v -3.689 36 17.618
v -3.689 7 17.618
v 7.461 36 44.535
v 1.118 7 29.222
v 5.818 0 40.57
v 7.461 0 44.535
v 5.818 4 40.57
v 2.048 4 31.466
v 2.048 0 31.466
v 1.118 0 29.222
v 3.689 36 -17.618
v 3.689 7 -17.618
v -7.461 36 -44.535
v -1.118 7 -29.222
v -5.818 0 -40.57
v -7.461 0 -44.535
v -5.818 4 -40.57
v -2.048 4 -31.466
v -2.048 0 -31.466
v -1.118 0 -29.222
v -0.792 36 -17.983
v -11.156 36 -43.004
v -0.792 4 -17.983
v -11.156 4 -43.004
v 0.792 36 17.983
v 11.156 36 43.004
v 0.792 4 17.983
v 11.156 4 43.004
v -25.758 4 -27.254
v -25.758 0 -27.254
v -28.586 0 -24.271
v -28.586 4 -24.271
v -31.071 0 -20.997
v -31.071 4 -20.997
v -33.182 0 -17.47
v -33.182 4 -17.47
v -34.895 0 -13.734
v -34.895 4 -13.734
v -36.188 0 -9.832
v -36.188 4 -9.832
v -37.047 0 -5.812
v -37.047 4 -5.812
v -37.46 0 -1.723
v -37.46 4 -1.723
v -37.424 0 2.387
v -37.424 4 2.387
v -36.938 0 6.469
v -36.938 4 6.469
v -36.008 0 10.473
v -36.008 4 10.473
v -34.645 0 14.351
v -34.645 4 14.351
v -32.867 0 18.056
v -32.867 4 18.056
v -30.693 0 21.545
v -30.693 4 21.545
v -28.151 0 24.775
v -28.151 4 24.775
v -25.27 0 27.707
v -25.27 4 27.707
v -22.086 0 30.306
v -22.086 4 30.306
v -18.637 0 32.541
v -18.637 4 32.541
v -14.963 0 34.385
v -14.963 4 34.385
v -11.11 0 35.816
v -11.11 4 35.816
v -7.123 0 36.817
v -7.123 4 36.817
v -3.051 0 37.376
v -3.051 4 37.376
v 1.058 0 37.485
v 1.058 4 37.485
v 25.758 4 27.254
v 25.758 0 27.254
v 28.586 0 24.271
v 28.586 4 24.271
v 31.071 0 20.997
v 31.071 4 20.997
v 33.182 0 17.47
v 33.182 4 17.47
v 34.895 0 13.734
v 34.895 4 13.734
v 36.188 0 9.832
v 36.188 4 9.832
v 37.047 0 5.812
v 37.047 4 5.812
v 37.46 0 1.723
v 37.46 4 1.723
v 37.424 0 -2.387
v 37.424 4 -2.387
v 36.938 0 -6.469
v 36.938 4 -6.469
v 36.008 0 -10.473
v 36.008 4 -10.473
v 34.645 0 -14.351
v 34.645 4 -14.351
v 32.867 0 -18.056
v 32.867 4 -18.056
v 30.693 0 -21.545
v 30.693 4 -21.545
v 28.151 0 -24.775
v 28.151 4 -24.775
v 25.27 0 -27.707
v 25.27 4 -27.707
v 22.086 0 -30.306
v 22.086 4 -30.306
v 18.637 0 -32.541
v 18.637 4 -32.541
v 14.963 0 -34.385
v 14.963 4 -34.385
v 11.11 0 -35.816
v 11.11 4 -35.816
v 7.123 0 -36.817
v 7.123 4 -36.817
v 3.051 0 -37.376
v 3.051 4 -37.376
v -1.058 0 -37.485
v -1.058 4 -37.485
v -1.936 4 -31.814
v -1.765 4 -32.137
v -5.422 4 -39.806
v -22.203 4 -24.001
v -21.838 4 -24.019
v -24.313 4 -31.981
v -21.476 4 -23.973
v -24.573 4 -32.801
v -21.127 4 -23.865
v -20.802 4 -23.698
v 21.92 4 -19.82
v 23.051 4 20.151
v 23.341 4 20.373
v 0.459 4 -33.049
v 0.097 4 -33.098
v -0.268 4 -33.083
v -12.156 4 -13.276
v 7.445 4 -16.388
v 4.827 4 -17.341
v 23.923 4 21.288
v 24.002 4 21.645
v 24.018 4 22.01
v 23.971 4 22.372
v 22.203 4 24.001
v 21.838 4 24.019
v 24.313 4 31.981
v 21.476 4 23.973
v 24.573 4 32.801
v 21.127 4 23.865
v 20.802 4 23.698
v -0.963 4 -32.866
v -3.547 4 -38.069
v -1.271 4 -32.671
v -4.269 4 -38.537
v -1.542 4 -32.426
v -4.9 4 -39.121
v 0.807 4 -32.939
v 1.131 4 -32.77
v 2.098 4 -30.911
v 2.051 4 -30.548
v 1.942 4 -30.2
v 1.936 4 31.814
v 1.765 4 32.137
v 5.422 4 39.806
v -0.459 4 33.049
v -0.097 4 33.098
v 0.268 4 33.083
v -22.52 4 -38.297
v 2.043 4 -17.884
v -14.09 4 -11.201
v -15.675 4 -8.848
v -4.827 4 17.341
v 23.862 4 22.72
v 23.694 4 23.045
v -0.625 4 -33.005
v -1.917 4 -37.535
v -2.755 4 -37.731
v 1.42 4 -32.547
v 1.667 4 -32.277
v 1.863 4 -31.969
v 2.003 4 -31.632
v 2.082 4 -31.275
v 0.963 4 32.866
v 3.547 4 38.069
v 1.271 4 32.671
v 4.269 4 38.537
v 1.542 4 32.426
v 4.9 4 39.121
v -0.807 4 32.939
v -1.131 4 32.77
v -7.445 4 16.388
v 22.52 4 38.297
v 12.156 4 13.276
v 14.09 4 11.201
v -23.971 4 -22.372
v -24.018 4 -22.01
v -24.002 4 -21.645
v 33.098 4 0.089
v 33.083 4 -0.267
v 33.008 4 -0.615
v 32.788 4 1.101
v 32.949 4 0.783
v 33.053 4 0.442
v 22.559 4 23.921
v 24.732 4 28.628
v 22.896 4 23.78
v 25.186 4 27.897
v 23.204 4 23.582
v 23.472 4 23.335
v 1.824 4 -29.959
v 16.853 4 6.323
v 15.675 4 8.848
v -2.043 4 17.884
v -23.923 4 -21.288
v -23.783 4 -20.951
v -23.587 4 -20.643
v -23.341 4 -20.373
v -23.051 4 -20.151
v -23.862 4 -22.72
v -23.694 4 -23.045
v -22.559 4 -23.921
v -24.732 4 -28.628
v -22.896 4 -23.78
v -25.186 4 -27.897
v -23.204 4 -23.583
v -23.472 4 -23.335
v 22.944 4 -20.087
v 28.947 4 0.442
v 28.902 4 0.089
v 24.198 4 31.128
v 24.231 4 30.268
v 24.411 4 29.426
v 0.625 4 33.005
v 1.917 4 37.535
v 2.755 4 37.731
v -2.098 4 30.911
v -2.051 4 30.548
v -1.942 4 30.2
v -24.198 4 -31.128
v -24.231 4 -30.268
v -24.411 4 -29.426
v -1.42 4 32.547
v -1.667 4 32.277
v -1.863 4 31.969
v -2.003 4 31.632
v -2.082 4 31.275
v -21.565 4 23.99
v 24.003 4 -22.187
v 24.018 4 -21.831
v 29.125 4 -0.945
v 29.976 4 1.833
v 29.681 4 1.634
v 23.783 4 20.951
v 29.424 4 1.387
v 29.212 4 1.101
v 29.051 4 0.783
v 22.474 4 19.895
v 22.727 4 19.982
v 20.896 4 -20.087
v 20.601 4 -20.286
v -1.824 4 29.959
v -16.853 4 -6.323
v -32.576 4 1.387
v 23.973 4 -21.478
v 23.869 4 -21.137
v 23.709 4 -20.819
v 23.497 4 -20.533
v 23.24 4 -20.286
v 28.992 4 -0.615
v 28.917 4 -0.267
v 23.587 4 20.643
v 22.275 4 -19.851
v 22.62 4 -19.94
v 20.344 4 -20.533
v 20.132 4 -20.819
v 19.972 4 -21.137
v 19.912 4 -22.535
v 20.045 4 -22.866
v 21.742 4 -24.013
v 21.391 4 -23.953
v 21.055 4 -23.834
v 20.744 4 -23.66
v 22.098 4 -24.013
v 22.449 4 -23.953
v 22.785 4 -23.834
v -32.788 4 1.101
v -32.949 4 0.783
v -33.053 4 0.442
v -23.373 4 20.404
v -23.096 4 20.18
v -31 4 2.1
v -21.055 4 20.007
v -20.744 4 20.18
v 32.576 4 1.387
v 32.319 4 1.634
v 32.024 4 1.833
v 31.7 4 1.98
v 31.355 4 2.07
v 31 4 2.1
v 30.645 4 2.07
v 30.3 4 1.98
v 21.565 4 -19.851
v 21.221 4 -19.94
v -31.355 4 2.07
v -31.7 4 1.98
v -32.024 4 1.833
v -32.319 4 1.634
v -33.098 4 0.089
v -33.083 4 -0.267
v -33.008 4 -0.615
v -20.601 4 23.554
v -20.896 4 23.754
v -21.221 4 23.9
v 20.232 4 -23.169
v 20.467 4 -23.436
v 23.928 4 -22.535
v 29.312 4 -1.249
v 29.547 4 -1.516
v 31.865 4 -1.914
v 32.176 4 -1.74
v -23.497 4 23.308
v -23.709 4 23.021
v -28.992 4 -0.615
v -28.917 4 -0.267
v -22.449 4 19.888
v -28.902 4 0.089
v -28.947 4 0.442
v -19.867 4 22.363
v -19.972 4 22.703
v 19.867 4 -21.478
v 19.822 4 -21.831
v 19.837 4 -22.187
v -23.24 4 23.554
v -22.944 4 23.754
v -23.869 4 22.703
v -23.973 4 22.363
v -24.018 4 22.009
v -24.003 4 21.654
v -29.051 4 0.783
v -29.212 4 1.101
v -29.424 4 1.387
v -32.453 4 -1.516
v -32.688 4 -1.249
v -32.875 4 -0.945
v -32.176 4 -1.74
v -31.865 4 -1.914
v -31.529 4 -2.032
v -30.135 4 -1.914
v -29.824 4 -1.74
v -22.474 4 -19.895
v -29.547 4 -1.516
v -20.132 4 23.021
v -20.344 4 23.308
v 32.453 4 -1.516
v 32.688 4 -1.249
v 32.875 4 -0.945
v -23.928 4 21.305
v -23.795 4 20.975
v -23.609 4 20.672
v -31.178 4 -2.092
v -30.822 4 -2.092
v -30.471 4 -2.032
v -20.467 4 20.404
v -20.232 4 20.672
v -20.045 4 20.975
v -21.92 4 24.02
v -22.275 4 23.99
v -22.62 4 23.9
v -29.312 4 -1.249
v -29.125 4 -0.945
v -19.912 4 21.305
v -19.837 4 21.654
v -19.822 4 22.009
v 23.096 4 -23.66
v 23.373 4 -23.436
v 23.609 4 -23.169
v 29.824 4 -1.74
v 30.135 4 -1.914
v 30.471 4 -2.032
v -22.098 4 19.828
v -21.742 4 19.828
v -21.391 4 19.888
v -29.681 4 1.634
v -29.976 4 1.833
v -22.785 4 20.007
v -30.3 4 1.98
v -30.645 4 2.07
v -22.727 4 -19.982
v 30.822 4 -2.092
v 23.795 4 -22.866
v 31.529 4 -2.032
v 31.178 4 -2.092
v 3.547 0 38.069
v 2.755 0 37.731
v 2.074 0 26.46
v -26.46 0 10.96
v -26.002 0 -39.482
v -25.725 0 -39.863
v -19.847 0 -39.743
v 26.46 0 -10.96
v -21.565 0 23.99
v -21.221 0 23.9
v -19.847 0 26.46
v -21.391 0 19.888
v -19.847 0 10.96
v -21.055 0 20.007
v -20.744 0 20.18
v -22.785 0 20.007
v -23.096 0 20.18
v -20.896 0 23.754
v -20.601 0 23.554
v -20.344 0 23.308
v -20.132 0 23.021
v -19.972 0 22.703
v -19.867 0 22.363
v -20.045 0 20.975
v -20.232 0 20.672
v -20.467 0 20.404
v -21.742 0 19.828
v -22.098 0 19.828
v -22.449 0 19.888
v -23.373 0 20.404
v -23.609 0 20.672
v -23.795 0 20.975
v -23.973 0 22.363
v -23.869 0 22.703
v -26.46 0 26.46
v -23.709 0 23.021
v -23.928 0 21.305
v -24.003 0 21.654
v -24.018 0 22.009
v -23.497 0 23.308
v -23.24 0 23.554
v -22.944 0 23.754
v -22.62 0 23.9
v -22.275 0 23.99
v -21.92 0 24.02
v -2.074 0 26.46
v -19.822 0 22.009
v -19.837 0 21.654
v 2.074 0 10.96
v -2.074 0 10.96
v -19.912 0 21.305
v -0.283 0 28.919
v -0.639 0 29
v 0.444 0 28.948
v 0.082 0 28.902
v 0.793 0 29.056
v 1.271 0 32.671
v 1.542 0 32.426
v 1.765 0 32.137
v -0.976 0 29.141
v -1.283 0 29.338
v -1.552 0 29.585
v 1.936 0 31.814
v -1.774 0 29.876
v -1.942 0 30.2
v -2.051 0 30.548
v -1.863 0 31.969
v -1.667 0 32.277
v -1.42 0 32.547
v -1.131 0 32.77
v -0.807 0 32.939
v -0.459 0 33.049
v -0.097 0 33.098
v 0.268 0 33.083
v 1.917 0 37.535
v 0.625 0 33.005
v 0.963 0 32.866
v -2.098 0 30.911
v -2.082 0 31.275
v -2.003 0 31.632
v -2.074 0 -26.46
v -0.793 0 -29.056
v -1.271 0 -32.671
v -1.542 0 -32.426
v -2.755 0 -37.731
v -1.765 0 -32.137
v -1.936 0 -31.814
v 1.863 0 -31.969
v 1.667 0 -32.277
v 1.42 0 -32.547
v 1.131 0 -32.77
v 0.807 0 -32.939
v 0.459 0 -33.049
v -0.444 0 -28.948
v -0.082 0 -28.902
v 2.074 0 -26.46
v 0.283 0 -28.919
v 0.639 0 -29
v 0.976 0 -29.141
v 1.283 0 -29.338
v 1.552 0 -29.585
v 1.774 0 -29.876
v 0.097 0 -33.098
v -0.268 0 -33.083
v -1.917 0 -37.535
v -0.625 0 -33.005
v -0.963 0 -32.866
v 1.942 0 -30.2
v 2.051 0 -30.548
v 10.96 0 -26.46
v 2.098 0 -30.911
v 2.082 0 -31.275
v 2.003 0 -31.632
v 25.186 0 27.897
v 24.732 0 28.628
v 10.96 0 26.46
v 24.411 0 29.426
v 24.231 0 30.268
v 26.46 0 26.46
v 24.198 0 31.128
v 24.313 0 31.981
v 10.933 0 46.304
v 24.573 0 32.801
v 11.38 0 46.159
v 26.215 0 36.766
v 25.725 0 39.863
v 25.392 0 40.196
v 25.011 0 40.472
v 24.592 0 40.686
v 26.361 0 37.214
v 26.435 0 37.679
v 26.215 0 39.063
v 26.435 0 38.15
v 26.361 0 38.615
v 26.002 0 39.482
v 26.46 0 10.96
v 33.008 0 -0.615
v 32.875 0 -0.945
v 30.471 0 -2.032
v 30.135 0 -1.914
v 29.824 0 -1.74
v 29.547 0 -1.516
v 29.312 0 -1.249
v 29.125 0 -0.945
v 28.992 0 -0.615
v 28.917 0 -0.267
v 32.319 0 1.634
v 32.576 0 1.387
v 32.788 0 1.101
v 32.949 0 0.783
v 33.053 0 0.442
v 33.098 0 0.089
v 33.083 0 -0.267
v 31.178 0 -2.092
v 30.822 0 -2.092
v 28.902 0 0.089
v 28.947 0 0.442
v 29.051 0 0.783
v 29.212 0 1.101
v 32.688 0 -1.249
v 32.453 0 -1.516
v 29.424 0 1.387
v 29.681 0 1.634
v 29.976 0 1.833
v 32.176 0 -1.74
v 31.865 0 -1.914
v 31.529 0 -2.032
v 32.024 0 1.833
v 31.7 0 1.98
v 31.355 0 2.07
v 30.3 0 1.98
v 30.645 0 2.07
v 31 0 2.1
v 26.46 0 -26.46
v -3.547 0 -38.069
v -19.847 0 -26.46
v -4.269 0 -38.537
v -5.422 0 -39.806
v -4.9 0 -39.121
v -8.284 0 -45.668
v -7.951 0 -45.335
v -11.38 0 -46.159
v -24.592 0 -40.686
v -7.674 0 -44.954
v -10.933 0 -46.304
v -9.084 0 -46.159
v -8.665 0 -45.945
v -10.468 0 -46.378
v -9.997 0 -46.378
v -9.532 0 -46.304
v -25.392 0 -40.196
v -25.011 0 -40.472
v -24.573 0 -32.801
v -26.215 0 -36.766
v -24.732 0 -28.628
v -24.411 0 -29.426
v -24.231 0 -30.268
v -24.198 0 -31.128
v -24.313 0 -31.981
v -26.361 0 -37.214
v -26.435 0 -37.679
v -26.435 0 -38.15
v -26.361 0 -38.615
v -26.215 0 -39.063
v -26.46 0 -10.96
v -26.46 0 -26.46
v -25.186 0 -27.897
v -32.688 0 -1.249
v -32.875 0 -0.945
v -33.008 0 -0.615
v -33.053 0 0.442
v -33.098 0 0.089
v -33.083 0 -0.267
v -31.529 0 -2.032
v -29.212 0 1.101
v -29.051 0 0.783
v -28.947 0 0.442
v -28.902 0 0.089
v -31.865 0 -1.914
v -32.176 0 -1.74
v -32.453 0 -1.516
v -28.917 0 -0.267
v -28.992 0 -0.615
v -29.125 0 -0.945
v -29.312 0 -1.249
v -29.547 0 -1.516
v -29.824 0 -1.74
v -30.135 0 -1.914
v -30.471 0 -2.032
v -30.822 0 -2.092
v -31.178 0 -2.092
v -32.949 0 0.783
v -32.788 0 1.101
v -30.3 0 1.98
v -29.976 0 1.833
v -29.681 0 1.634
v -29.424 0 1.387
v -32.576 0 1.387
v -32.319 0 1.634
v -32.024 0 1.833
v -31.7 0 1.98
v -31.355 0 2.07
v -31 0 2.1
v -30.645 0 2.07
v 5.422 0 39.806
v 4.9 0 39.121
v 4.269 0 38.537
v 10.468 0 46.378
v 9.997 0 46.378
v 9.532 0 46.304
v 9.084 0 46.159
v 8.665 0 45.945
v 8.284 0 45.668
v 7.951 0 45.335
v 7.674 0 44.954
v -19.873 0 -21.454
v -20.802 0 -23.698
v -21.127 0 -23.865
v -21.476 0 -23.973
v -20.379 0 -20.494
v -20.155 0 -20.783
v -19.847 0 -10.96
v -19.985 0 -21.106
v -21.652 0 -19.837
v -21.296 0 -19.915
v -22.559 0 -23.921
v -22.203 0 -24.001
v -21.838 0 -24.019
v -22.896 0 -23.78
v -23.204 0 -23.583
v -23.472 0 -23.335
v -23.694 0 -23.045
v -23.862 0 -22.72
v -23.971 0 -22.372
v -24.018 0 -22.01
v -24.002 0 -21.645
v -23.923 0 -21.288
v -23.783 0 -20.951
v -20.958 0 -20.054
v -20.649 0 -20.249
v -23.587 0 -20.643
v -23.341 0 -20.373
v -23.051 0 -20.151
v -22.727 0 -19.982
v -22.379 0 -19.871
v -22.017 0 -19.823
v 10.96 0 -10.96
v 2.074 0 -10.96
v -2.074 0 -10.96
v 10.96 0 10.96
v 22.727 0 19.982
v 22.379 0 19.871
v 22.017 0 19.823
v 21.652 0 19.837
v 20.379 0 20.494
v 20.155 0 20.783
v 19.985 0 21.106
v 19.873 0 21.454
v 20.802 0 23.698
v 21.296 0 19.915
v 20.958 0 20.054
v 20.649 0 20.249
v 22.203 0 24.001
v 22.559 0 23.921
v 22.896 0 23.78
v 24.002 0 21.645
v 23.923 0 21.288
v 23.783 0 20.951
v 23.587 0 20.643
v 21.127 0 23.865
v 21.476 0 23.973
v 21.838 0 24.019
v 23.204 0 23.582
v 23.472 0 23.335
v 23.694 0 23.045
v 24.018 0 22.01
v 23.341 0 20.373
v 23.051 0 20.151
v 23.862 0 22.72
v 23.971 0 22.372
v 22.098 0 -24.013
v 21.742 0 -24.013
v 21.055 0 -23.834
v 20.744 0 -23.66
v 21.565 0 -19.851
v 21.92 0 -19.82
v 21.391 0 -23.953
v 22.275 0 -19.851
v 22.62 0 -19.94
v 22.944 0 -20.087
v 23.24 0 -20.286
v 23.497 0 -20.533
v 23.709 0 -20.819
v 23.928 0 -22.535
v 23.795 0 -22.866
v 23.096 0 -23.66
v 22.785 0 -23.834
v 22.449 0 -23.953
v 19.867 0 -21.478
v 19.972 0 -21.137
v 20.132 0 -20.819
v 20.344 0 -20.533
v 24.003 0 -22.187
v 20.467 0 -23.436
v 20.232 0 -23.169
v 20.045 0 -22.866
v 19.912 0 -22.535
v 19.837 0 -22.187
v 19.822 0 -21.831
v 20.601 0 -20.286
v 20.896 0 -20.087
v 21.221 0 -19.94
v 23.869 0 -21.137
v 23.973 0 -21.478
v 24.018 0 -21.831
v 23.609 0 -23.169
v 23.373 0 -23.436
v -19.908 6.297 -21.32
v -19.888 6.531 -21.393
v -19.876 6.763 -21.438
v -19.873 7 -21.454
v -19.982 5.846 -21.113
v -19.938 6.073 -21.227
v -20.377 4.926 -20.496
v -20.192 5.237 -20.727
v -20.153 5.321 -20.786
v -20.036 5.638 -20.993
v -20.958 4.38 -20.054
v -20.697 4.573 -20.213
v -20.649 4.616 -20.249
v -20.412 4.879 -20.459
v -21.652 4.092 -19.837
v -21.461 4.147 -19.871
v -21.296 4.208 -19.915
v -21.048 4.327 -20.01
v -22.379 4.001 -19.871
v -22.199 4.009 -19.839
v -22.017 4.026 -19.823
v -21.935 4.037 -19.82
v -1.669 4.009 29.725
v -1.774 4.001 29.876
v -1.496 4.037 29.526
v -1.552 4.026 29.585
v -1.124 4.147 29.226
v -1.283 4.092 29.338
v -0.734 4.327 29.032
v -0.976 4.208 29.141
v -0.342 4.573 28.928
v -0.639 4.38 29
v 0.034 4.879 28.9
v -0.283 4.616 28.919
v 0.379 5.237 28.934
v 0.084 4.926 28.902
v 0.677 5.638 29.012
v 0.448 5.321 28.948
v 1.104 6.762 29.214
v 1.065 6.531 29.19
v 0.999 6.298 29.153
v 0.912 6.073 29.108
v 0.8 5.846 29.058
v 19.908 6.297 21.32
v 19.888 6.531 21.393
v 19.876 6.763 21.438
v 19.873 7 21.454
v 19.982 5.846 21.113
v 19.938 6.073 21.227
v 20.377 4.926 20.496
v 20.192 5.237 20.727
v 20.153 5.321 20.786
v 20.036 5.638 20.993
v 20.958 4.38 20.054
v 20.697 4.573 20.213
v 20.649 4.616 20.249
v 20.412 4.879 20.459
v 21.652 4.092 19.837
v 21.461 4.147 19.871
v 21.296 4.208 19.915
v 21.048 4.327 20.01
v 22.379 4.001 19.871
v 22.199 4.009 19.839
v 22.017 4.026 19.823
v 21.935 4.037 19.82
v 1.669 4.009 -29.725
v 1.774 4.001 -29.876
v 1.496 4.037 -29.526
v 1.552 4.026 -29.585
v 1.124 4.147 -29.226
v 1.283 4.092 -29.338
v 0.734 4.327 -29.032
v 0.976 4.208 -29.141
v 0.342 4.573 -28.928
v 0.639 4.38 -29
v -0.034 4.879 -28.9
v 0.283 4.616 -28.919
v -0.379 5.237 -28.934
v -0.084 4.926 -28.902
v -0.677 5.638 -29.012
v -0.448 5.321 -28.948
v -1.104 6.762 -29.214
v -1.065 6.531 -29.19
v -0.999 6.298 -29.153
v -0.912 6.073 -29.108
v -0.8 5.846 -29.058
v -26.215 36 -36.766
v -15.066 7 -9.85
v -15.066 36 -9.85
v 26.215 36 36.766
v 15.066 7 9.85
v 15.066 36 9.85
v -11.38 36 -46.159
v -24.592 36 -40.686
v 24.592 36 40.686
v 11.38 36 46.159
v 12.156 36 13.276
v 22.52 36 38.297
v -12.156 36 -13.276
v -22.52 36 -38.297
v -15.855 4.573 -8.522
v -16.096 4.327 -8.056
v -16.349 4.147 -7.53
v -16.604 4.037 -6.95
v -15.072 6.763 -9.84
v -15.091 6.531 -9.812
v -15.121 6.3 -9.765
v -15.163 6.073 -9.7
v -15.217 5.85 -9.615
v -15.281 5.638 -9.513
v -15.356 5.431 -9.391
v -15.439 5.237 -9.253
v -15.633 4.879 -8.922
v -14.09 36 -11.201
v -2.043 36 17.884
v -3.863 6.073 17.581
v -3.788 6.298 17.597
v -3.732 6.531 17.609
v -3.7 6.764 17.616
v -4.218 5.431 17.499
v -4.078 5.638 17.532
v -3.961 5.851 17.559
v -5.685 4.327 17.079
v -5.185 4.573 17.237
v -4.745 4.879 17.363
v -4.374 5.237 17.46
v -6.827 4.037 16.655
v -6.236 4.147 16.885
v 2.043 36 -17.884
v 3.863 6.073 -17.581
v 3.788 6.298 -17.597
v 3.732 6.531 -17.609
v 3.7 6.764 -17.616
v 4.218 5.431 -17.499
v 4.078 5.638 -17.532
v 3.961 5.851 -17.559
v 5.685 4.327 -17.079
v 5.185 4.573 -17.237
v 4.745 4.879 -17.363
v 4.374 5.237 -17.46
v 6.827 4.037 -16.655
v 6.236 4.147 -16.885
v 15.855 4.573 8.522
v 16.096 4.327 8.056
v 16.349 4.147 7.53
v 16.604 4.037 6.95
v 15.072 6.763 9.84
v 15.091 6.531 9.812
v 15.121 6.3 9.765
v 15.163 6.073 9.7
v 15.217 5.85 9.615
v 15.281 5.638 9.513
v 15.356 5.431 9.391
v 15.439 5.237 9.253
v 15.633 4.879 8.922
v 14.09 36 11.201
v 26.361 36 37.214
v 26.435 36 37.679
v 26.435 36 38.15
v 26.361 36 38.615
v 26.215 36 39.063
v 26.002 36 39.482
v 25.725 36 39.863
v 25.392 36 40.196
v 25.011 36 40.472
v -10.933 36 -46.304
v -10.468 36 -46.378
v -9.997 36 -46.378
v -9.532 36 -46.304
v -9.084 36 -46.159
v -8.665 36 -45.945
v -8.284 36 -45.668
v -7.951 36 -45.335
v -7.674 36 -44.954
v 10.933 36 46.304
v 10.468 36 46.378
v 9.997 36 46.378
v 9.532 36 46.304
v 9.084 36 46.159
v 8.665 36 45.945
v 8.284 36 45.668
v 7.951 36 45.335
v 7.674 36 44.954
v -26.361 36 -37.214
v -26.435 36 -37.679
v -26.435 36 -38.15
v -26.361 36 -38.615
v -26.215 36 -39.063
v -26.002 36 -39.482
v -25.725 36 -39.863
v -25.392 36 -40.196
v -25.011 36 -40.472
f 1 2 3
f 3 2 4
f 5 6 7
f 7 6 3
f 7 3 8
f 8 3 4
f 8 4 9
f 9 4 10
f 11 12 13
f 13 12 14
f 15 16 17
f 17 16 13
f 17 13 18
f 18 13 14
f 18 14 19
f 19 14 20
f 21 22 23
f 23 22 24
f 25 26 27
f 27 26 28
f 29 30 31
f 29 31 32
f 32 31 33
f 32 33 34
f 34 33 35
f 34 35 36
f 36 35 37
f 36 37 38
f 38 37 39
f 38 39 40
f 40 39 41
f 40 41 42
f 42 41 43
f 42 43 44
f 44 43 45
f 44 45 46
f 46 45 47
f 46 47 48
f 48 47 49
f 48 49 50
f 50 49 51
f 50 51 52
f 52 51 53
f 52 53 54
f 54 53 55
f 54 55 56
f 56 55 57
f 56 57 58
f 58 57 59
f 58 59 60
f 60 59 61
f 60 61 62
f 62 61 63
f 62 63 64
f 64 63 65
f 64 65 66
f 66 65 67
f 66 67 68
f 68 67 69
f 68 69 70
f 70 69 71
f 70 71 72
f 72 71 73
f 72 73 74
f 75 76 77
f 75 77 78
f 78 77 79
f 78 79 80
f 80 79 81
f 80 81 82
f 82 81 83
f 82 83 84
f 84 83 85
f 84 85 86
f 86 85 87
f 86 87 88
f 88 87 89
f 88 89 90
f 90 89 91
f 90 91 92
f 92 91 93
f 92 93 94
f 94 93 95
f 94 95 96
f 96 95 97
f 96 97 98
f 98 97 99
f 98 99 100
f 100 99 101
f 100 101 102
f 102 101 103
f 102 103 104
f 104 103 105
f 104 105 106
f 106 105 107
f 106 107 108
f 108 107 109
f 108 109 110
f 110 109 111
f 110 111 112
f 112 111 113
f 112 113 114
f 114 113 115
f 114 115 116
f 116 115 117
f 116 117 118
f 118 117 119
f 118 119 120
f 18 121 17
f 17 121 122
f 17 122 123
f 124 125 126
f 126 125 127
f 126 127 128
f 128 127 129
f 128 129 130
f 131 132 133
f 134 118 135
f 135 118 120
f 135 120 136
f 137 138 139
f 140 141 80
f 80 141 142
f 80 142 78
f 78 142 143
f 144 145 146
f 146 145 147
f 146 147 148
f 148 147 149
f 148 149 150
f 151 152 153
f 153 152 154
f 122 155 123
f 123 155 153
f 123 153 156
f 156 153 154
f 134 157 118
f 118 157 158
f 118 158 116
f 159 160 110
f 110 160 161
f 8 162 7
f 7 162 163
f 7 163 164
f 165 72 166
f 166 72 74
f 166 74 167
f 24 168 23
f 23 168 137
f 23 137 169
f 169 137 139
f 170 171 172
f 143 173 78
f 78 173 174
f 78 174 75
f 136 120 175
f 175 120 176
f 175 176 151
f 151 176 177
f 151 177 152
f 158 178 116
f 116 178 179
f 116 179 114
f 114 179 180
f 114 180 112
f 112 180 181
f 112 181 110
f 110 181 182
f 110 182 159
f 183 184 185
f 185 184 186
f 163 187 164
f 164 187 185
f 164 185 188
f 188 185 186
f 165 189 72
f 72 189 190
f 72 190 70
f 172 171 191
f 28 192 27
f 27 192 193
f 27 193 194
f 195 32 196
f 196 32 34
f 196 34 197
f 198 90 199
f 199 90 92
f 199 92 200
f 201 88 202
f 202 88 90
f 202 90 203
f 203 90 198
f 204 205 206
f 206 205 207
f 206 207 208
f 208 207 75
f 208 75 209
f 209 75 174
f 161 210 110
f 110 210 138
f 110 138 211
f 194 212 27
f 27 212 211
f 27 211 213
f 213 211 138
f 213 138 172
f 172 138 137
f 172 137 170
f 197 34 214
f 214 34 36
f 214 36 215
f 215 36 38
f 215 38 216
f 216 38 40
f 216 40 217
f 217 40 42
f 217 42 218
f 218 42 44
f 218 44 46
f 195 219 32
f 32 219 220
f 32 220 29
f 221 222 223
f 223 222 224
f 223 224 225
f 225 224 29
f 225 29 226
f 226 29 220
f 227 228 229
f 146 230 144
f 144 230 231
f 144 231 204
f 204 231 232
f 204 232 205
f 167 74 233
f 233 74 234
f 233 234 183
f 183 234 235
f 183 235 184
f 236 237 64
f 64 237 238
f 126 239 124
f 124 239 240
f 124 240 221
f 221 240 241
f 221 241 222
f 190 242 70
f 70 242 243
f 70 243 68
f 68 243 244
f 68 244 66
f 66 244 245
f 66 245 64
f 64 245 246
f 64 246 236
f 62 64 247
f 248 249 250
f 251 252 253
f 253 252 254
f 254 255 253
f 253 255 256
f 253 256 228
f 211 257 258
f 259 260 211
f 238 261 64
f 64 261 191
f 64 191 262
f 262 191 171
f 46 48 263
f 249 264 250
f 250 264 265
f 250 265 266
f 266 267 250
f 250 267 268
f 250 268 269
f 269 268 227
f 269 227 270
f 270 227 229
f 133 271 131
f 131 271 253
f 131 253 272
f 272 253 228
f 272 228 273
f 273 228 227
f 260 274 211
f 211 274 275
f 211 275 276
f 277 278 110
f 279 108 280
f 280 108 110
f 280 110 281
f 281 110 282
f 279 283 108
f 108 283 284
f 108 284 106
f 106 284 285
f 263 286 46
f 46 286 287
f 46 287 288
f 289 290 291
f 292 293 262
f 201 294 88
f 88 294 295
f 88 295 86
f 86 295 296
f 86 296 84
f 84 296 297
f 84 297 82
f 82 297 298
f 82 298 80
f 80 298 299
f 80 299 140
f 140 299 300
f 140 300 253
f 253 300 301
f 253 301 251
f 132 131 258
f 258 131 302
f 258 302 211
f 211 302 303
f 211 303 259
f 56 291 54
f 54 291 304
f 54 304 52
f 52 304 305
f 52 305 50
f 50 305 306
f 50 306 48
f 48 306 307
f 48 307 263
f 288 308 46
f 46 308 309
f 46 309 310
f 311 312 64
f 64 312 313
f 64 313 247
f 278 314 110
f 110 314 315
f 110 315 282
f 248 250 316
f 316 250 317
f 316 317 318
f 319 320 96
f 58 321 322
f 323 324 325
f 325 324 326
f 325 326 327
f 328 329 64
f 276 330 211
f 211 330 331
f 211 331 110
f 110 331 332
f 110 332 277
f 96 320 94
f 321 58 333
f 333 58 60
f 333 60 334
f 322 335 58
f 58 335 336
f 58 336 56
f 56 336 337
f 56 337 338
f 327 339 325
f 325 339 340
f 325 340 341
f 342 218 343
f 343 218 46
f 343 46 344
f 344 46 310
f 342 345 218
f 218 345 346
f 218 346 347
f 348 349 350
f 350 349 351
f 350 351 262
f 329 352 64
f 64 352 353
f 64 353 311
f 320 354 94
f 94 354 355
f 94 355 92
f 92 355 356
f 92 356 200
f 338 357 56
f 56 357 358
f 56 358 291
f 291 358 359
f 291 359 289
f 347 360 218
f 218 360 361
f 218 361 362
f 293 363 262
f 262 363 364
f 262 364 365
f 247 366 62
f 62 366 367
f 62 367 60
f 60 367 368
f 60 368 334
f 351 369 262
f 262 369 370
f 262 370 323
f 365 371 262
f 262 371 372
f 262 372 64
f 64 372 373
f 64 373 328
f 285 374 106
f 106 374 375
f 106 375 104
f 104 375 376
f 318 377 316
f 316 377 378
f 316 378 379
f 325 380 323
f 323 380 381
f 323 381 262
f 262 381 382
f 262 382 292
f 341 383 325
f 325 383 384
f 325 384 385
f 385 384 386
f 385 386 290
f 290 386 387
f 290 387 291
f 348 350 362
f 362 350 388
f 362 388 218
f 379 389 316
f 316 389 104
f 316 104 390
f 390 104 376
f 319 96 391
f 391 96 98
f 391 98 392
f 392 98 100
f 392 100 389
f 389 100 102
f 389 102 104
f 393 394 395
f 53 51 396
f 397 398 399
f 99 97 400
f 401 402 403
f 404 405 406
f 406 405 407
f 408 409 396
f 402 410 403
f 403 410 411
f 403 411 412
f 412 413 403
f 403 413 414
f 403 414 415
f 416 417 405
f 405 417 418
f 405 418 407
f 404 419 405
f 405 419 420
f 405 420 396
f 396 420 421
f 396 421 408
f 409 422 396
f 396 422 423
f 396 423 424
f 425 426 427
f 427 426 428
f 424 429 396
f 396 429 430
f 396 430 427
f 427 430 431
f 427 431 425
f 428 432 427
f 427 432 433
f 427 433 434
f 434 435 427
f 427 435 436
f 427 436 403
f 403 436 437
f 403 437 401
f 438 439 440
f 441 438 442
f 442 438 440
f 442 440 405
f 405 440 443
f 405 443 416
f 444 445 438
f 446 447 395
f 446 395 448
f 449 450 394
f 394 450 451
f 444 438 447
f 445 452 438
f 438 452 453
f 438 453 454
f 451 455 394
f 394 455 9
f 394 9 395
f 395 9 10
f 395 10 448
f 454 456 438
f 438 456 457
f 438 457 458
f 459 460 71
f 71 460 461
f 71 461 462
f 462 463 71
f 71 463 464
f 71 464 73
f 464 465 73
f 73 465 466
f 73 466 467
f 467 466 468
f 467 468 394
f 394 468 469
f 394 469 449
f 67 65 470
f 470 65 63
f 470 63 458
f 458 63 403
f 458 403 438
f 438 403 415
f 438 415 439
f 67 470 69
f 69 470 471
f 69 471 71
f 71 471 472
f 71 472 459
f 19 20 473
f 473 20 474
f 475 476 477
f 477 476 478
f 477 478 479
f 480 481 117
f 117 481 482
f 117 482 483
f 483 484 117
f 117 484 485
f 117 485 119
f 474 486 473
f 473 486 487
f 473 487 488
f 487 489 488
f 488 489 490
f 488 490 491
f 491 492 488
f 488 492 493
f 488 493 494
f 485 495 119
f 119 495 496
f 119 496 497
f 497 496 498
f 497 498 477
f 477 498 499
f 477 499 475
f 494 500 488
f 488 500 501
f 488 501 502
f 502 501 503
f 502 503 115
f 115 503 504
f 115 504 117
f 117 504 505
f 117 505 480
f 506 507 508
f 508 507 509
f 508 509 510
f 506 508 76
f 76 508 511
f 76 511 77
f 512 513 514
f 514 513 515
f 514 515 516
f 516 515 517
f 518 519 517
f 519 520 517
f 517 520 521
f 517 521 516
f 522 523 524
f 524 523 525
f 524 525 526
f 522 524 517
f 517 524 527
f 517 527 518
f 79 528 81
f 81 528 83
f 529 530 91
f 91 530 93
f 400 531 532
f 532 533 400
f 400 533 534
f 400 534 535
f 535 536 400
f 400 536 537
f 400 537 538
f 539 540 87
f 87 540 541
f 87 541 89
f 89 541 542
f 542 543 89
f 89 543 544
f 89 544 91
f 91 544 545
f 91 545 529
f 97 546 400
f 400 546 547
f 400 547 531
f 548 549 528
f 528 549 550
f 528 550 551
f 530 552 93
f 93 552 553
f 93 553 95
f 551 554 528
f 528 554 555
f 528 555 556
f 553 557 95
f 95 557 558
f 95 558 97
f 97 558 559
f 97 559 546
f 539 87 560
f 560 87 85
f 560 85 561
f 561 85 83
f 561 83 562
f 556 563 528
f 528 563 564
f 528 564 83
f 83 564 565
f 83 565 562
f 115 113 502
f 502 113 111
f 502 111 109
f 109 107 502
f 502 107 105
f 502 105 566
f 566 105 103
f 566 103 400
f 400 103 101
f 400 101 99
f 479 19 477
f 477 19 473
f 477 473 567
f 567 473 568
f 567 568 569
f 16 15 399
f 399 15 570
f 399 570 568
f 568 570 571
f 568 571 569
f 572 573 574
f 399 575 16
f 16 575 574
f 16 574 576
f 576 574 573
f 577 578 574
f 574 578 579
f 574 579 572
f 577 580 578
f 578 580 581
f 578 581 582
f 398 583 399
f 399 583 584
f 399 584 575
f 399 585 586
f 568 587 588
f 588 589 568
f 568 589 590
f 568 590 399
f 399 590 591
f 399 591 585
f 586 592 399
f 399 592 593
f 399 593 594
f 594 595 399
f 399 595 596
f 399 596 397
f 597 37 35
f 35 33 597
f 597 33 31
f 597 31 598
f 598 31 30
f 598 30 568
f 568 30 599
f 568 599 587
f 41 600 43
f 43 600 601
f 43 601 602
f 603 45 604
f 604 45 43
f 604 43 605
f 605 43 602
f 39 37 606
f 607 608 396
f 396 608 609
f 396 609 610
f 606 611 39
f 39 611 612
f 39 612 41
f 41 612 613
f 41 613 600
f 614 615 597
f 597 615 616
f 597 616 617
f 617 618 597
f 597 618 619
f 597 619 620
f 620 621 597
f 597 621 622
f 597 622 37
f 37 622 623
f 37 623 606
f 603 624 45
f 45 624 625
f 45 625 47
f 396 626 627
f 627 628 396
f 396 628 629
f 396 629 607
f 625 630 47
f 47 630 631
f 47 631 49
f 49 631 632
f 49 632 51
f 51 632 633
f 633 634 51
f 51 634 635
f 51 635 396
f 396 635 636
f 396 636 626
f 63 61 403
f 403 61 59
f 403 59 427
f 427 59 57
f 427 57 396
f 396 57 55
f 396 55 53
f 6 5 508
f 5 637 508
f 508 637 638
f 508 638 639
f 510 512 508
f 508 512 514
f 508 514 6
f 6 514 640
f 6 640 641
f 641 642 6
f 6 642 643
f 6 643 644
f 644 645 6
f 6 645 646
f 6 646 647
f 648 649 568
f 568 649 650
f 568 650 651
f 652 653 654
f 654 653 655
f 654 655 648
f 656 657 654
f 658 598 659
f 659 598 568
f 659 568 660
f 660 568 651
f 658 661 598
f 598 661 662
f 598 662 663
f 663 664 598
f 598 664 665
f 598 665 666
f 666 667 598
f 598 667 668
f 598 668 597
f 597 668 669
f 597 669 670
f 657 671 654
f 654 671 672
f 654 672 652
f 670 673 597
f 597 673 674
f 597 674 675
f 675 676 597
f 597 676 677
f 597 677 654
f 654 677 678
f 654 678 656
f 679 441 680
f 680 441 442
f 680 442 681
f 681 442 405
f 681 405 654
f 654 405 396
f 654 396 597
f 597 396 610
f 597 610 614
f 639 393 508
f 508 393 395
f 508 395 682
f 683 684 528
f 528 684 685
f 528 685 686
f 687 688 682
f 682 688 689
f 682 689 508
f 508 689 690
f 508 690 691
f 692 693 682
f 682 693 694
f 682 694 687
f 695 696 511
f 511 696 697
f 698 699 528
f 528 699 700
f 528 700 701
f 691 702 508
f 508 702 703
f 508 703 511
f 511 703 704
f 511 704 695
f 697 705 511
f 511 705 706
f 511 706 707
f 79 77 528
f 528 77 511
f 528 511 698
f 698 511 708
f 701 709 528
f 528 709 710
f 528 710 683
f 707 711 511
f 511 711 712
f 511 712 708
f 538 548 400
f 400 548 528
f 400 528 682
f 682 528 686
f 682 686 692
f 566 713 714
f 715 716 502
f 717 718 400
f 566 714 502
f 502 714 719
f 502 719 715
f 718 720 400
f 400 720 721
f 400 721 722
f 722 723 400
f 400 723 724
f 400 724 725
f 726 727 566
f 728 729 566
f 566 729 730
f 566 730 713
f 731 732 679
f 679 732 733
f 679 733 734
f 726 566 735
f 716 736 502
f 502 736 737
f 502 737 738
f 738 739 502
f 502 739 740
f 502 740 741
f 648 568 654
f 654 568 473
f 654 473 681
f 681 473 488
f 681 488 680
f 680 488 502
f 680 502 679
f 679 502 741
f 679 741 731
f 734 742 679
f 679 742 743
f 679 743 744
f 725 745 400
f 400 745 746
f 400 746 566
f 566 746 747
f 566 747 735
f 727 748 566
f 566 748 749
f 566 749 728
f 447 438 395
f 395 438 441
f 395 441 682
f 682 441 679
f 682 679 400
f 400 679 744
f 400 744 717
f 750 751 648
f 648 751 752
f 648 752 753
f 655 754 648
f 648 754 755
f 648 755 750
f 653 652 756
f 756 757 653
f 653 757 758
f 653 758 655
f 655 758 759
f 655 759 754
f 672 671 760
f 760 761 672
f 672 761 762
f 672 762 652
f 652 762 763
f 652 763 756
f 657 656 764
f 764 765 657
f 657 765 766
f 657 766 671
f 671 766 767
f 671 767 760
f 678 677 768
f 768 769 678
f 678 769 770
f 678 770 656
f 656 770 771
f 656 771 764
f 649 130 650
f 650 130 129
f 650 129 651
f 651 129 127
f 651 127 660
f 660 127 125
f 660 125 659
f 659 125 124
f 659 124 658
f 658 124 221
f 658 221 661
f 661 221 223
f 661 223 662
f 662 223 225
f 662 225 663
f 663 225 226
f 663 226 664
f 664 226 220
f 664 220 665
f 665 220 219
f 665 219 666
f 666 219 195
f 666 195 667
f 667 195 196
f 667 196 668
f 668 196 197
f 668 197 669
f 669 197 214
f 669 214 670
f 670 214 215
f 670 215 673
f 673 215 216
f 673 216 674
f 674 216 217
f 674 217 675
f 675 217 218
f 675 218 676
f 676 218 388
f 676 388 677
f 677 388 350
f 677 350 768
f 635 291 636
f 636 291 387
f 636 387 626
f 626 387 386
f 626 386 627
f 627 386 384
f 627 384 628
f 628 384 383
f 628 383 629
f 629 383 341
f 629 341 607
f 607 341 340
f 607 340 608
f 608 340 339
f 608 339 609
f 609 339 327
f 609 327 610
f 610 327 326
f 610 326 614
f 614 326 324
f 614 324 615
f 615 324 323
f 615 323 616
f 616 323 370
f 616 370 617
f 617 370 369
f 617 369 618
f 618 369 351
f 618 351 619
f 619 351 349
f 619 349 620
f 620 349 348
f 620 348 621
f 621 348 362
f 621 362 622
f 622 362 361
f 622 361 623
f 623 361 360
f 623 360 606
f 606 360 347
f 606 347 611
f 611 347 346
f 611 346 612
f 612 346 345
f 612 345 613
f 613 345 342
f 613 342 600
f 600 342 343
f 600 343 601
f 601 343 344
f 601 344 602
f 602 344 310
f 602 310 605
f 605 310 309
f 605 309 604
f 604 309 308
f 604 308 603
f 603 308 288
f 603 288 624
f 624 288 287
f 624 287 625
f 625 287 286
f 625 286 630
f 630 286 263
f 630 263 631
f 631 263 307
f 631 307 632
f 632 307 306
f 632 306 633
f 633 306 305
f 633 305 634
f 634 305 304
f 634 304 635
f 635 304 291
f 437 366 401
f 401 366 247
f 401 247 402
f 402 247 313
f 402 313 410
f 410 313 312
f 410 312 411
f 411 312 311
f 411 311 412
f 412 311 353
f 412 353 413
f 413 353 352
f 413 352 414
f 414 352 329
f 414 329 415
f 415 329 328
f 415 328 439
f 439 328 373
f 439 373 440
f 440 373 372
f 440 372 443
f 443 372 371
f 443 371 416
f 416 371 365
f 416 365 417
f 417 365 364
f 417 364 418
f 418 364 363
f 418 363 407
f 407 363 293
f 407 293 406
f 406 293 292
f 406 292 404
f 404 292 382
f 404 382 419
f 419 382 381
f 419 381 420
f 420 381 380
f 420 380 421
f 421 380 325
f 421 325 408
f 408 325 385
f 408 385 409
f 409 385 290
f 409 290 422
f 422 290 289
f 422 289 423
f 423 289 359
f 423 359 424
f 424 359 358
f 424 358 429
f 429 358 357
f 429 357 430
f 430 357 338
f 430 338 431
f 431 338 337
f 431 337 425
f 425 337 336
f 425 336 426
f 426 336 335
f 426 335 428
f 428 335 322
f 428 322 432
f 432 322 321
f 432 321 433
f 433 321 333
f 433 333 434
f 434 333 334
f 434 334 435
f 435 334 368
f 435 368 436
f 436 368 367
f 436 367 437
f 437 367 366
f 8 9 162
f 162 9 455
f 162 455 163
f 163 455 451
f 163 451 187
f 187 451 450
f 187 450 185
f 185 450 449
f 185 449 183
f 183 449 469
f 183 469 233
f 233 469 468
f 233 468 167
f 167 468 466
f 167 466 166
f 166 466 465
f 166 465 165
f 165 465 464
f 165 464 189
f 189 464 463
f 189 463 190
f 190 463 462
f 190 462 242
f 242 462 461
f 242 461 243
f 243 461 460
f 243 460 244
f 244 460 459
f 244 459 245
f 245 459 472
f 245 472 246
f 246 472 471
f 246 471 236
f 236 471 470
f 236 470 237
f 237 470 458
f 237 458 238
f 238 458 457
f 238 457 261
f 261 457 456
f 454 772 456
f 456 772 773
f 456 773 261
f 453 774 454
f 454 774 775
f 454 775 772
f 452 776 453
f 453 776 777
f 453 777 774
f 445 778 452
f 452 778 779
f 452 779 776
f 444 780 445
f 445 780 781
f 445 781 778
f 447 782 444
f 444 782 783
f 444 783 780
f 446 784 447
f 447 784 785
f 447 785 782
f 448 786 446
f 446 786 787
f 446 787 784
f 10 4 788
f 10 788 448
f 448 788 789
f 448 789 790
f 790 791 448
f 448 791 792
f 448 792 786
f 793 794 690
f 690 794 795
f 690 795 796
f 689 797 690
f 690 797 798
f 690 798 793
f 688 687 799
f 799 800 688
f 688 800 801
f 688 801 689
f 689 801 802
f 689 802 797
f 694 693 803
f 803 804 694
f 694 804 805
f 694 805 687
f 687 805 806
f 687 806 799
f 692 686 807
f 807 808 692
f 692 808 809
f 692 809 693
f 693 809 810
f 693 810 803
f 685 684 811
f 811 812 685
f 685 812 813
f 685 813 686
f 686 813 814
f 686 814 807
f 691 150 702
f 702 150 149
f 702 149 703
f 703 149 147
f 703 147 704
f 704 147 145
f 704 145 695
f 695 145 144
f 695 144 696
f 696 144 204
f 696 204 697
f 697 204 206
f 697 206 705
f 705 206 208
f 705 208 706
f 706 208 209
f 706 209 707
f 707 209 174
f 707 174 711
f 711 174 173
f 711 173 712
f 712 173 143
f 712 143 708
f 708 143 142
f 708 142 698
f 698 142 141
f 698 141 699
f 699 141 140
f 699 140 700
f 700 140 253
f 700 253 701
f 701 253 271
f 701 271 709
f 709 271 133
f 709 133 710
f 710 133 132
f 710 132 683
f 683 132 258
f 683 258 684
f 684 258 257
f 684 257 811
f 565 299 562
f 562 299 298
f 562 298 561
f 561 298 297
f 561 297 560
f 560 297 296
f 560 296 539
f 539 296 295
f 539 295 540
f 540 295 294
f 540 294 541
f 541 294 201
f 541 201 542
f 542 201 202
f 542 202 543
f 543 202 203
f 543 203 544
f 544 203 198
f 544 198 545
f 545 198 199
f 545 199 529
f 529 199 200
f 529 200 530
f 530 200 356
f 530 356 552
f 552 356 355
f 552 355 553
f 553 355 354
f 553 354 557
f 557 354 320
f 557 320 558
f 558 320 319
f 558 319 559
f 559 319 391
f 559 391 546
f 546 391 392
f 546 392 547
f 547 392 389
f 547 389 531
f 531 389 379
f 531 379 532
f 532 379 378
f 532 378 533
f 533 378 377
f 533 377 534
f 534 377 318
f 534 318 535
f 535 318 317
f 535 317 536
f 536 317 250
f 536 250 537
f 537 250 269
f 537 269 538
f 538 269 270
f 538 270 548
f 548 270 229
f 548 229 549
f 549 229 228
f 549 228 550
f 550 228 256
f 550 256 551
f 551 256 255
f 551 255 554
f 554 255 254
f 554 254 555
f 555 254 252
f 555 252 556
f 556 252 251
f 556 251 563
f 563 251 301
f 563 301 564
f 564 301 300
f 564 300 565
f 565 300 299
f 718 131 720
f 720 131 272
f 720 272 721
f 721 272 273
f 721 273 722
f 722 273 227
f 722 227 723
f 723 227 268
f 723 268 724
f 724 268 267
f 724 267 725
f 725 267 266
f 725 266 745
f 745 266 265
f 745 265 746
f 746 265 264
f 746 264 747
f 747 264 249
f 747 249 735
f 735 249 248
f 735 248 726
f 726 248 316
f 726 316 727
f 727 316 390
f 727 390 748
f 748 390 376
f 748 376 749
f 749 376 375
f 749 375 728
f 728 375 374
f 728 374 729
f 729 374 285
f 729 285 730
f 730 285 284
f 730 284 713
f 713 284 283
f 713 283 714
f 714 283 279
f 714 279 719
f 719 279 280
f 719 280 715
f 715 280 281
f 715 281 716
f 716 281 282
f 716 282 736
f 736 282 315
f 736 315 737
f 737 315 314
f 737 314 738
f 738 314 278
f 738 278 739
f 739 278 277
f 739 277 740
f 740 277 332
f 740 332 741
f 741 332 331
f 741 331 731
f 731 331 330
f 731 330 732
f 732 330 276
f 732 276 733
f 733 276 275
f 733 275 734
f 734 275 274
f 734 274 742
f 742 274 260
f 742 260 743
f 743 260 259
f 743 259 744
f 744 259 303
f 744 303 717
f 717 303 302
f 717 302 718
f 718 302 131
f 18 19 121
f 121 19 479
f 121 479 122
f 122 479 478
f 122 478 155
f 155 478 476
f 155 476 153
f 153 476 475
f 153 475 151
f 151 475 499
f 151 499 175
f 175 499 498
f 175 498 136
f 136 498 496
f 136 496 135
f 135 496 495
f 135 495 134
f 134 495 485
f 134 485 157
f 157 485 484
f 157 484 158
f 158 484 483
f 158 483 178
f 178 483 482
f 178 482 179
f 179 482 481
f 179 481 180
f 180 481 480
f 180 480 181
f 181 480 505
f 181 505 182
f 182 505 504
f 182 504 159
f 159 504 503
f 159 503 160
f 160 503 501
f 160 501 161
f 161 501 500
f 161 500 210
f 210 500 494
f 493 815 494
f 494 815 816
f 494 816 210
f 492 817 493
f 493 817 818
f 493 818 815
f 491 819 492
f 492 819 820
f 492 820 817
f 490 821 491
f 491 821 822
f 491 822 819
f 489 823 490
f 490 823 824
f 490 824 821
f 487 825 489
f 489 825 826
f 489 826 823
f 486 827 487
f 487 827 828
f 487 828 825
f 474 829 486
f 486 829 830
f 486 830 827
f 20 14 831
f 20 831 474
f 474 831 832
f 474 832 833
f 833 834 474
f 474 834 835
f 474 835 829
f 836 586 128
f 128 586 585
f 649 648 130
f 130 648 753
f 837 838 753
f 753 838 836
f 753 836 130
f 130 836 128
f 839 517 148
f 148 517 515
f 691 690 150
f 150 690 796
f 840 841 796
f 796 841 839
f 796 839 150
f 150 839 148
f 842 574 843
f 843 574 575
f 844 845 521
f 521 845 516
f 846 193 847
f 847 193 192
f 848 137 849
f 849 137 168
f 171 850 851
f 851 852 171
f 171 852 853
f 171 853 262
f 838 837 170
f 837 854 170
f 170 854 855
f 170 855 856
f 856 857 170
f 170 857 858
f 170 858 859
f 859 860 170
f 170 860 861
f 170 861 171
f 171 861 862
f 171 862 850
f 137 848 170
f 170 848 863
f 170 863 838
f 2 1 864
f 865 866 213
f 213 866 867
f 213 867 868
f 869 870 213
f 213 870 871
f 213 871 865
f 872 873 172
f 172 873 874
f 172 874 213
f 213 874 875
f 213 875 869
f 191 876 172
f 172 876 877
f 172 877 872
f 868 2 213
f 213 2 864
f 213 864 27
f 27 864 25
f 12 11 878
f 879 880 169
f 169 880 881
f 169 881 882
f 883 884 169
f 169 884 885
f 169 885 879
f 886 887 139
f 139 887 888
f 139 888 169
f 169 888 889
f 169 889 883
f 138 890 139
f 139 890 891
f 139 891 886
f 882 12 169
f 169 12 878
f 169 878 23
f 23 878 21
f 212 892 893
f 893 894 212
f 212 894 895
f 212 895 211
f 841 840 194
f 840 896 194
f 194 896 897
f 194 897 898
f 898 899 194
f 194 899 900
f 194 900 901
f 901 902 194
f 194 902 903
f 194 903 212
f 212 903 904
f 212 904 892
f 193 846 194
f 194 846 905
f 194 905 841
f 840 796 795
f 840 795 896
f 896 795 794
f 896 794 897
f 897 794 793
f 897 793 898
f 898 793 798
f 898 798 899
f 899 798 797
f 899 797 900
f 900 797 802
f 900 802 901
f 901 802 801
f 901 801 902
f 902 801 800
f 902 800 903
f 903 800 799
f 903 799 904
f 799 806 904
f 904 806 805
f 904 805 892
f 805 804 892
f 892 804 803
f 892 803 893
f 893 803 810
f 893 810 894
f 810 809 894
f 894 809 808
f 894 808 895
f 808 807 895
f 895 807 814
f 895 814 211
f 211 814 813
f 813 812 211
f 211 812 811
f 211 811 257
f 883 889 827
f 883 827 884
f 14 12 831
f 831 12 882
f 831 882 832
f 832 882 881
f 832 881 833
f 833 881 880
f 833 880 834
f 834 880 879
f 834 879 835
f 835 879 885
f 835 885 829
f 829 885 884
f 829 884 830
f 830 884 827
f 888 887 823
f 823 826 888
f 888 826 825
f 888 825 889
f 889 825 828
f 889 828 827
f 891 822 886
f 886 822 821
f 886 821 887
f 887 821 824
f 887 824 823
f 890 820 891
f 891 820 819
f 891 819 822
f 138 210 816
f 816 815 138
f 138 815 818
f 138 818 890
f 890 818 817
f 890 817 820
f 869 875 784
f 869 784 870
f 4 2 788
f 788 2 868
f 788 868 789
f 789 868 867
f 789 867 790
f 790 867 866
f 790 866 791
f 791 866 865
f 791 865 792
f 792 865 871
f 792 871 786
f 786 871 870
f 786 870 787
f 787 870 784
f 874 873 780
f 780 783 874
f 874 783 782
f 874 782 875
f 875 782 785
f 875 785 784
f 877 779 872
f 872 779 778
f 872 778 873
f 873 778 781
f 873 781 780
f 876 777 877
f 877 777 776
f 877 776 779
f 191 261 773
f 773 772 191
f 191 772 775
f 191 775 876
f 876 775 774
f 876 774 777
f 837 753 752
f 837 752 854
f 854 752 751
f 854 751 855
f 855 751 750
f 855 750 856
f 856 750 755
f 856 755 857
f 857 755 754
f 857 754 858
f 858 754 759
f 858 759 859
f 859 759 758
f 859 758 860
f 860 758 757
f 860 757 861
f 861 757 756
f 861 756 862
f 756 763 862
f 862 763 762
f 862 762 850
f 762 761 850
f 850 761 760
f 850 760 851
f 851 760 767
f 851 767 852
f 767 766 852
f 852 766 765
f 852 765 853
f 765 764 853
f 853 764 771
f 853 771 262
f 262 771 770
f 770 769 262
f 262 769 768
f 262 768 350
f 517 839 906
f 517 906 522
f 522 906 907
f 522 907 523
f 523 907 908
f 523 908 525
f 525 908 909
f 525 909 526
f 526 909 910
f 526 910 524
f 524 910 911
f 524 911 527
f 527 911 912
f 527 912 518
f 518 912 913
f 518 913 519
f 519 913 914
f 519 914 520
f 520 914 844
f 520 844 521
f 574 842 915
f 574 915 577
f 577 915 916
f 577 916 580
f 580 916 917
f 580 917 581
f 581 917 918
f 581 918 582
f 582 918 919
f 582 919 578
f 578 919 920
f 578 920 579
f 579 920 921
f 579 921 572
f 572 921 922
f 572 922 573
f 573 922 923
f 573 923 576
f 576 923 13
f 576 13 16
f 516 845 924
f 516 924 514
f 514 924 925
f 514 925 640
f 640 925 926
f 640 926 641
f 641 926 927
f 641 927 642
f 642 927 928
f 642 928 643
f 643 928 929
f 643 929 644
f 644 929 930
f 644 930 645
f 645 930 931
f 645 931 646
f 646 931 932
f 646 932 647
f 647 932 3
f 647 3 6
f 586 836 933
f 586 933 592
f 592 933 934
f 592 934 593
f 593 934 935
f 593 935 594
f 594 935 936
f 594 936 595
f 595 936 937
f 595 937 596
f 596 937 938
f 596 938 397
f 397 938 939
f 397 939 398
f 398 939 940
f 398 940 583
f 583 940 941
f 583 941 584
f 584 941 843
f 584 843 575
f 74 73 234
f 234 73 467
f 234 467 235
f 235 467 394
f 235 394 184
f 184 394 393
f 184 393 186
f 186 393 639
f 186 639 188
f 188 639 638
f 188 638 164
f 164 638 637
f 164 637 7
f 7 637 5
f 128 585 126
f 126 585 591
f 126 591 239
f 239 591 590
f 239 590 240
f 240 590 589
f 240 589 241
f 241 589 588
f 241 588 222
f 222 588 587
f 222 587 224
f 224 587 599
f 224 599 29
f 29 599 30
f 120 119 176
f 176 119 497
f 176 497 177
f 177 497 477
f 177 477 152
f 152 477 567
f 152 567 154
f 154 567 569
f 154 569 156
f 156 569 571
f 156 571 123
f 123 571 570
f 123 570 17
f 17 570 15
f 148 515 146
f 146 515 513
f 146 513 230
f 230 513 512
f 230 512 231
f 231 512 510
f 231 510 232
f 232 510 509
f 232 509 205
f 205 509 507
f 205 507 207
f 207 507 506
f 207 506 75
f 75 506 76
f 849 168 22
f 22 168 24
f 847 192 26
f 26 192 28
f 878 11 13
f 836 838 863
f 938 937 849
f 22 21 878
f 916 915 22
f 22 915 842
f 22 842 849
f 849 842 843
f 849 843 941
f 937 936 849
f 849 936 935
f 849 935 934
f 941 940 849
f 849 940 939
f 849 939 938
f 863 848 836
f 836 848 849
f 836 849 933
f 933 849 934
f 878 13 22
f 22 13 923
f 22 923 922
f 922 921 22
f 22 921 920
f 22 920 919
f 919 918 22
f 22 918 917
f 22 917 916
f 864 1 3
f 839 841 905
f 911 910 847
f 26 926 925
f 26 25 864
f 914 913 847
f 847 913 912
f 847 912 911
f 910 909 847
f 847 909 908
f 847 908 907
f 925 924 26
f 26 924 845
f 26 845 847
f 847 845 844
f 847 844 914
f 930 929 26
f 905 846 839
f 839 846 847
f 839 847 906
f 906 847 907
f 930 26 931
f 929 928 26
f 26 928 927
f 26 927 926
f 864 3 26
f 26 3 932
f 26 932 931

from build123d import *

# Parameters (mm, degrees)
CROQUIS2_R                   = 37.5
SALIENTE_EXTRUIR1_DEPTH      = 4
CROQUIS3_R                   = 2.1
CORTAR_EXTRUIR1_DEPTH        = 4
SALIENTE_EXTRUIR2_DEPTH      = 20
SALIENTE_EXTRUIR2_DEPTH_BACK = 4
SALIENTE_EXTRUIR3_DEPTH      = 20
SALIENTE_EXTRUIR3_DEPTH_BACK = 4
CORTAR_EXTRUIR2_DEPTH        = 20
CROQUIS9_R                   = 18
CORTAR_EXTRUIR3_DEPTH        = 20
REDONDEO1_R                  = 3
REDONDEO2_R                  = 3
REDONDEO3_R                  = 5
CORTAR_EXTRUIR4_DEPTH        = 20
SALIENTE_EXTRUIR4_START      = 12
SALIENTE_EXTRUIR4_DEPTH      = 12


with BuildPart() as part:
    # Croquis2 → Saliente-Extruir1 (new body)
    with BuildSketch(Plane(origin=(0, 0, 0), x_dir=(1, 0, 0), z_dir=(0, 1, 0))):
        with Locations(Location((0, 0, 0), (0, 0, 270))):
            Circle(CROQUIS2_R)
    extrude(amount=SALIENTE_EXTRUIR1_DEPTH)

    # Croquis3 → Cortar-Extruir1 (cut)
    with BuildSketch(Plane(origin=(0, 4, 0), x_dir=(1, 0, 0), z_dir=(0, 1, 0))):
        with Locations(Location((0, 31, 0), (0, 0, 270))):
            Circle(CROQUIS3_R)
        with Locations(Location((21.920310217, 21.920310217, 0), (0, 0, 270))):
            Circle(CROQUIS3_R)
        with Locations(Location((31, 0, 0), (0, 0, 270))):
            Circle(CROQUIS3_R)
        with Locations(Location((21.920310217, -21.920310217, 0), (0, 0, 270))):
            Circle(CROQUIS3_R)
        with Locations(Location((0, -31, 0), (0, 0, 270))):
            Circle(CROQUIS3_R)
        with Locations(Location((-21.920310217, -21.920310217, 0), (0, 0, 270))):
            Circle(CROQUIS3_R)
        with Locations(Location((-31, 0, 0), (0, 0, 270))):
            Circle(CROQUIS3_R)
        with Locations(Location((-21.920310217, 21.920310217, 0), (0, 0, 270))):
            Circle(CROQUIS3_R)
    extrude(amount=-CORTAR_EXTRUIR1_DEPTH, mode=Mode.SUBTRACT)

    # Croquis4 → Saliente-Extruir2 (add, two sides: drawn at the far end of the back side and taken through both)
    with BuildSketch(Plane(origin=(0, 4, 0), x_dir=(1, 0, 0), z_dir=(0, 1, 0)).offset(-SALIENTE_EXTRUIR2_DEPTH_BACK)):
        with BuildLine():
            ThreePointArc((8.474466938, -36.529897483), (11.451375588, -35.708766391), (14.350628714, -34.645482469))
            Line((14.350628714, -34.645482469), (-14.350628714, 34.645482469))
            ThreePointArc((-14.350628714, 34.645482469), (-17.15256553, 33.347256195), (-19.838185188, 31.822891265))
            Line((-19.838185188, 31.822891265), (8.474466938, -36.529897483))
        make_face()
        with BuildLine():
            Line((-14.350628714, 34.645482469), (14.350628714, -34.645482469))
            ThreePointArc((14.350628714, -34.645482469), (17.15256553, -33.347256195), (19.838185188, -31.822891265))
            Line((19.838185188, -31.822891265), (-8.474466938, 36.529897483))
            ThreePointArc((-8.474466938, 36.529897483), (-11.451375588, 35.708766391), (-14.350628714, 34.645482469))
        make_face()
        with BuildLine():
            Line((10.773528467, -42.080323007), (16.455387592, -39.726819898))
            Line((16.455387592, -39.726819898), (14.350628714, -34.645482469))
            ThreePointArc((14.350628714, -34.645482469), (11.451375588, -35.708766391), (8.474466938, -36.529897483))
            Line((8.474466938, -36.529897483), (10.773528467, -42.080323007))
        make_face()
        with BuildLine():
            Line((14.350628714, -34.645482469), (16.455387592, -39.726819898))
            Line((16.455387592, -39.726819898), (22.137246717, -37.373316789))
            Line((22.137246717, -37.373316789), (19.838185188, -31.822891265))
            ThreePointArc((19.838185188, -31.822891265), (17.15256553, -33.347256195), (14.350628714, -34.645482469))
        make_face()
        with BuildLine():
            ThreePointArc((-19.838185188, 31.822891265), (-17.15256553, 33.347256195), (-14.350628714, 34.645482469))
            Line((-14.350628714, 34.645482469), (-16.455387592, 39.726819898))
            Line((-16.455387592, 39.726819898), (-22.137246717, 37.373316789))
            Line((-22.137246717, 37.373316789), (-19.838185188, 31.822891265))
        make_face()
        with BuildLine():
            Line((-16.455387592, 39.726819898), (-14.350628714, 34.645482469))
            ThreePointArc((-14.350628714, 34.645482469), (-11.451375588, 35.708766391), (-8.474466938, 36.529897483))
            Line((-8.474466938, 36.529897483), (-10.773528467, 42.080323007))
            Line((-10.773528467, 42.080323007), (-16.455387592, 39.726819898))
        make_face()
    extrude(amount=SALIENTE_EXTRUIR2_DEPTH + SALIENTE_EXTRUIR2_DEPTH_BACK)

    # Croquis6 → Saliente-Extruir3 (add, two sides: drawn at the far end of the back side and taken through both)
    with BuildSketch(Plane(origin=(0, 4, 0), x_dir=(1, 0, 0), z_dir=(0, 1, 0)).offset(-SALIENTE_EXTRUIR3_DEPTH_BACK)):
        Polygon((-27.363498576, 39.53810119), (8.608744066, -47.306574867), (27.363498576, -39.53810119), (-8.608744066, 47.306574867), align=None)
        Polygon((-22.137246717, 37.373316789), (10.773528467, -42.080323007), (22.137246717, -37.373316789), (-10.773528467, 42.080323007), align=None, mode=Mode.SUBTRACT)
    extrude(amount=SALIENTE_EXTRUIR3_DEPTH + SALIENTE_EXTRUIR3_DEPTH_BACK)

    # Croquis8 → Cortar-Extruir2 (cut)
    with BuildSketch(Plane(origin=(0, 24, 0), x_dir=(1, 0, 0), z_dir=(0, 1, 0))):
        Polygon((-10.773528467, 42.080323007), (-22.137246717, 37.373316789), (10.773528467, -42.080323007), (22.137246717, -37.373316789), align=None)
    extrude(amount=-CORTAR_EXTRUIR2_DEPTH, mode=Mode.SUBTRACT)

    # Croquis9 → Cortar-Extruir3 (cut)
    with BuildSketch(Plane(origin=(0, 24, 0), x_dir=(1, 0, 0), z_dir=(0, 1, 0))):
        Circle(CROQUIS9_R)
    extrude(amount=-CORTAR_EXTRUIR3_DEPTH, mode=Mode.SUBTRACT)

    # Redondeo1
    redondeo1_edges = [part.edges().sort_by_distance(p)[0] for p in [
        (1.285328501, 4, -23.420170689),
        (-1.285328501, 4, 23.420170689),
        (-17.469426009, 4, -15.651697012),
        (17.469426009, 4, 15.651697012),
    ]]
    fillet(redondeo1_edges, radius=REDONDEO1_R)

    # Redondeo2
    redondeo2_edges = [part.edges().sort_by_distance(p)[0] for p in [
        (8.608744066, 12, 47.306574867),
        (-8.608744066, 12, -47.306574867),
        (-27.363498576, 12, -39.53810119),
        (27.363498576, 12, 39.53810119),
    ]]
    fillet(redondeo2_edges, radius=REDONDEO2_R)

    # Redondeo3
    redondeo3_edges = [part.edges().sort_by_distance(p)[0] for p in [
        (-23.192341919, 2, -29.468038216),
        (4.437587409, 2, 37.236511893),
        (23.192341919, 2, 29.468038216),
        (-4.437587409, 2, -37.236511893),
    ]]
    fillet(redondeo3_edges, radius=REDONDEO3_R)

    # Croquis10 → Cortar-Extruir4 (cut)
    with BuildSketch(Plane(origin=(0, 24, 0), x_dir=(1, 0, 0), z_dir=(0, 1, 0))):
        Polygon((10.773528467, -42.080323007), (22.137246717, -37.373316789), (22.519930149, -38.297196321), (11.156211899, -43.00420254), align=None)
        Polygon((-10.773528467, 42.080323007), (-22.137246717, 37.373316789), (-22.519930149, 38.297196321), (-11.156211899, 43.00420254), align=None)
    extrude(amount=-CORTAR_EXTRUIR4_DEPTH, mode=Mode.SUBTRACT)

    # Croquis11 → Saliente-Extruir4 (add)
    with BuildSketch(Plane(origin=(0, 24, 0), x_dir=(1, 0, 0), z_dir=(0, 1, 0)).offset(SALIENTE_EXTRUIR4_START)):
        with BuildLine():
            Line((22.519930149, -38.297196321), (11.156211899, -43.00420254))
            Line((11.156211899, -43.00420254), (0.791912926, -17.982571393))
            ThreePointArc((0.791912926, -17.982571393), (-1.459803938, -17.940707134), (-3.688668647, -17.617994313))
            Line((-3.688668647, -17.617994313), (7.460693769, -44.534936269))
            ThreePointArc((7.460693769, -44.534936269), (9.08428207, -46.158524569), (11.380382664, -46.158524569))
            Line((11.380382664, -46.158524569), (24.591859979, -40.686151487))
            ThreePointArc((24.591859979, -40.686151487), (26.215448279, -39.062563186), (26.215448279, -36.766462592))
            Line((26.215448279, -36.766462592), (15.066085863, -9.849520636))
            ThreePointArc((15.066085863, -9.849520636), (13.718232938, -11.65375841), (12.155631176, -13.275565175))
            Line((12.155631176, -13.275565175), (22.519930149, -38.297196321))
        make_face()
        with BuildLine():
            Line((-22.519930149, 38.297196321), (-11.156211899, 43.00420254))
            Line((-11.156211899, 43.00420254), (-0.791912926, 17.982571393))
            ThreePointArc((-0.791912926, 17.982571393), (1.459803938, 17.940707134), (3.688668647, 17.617994313))
            Line((3.688668647, 17.617994313), (-7.460693769, 44.534936269))
            ThreePointArc((-7.460693769, 44.534936269), (-9.08428207, 46.158524569), (-11.380382664, 46.158524569))
            Line((-11.380382664, 46.158524569), (-24.591859979, 40.686151487))
            ThreePointArc((-24.591859979, 40.686151487), (-26.215448279, 39.062563186), (-26.215448279, 36.766462592))
            Line((-26.215448279, 36.766462592), (-15.066085863, 9.849520636))
            ThreePointArc((-15.066085863, 9.849520636), (-13.718232938, 11.65375841), (-12.155631176, 13.275565175))
            Line((-12.155631176, 13.275565175), (-22.519930149, 38.297196321))
        make_face()
    extrude(amount=-SALIENTE_EXTRUIR4_DEPTH)


solid = part.part
